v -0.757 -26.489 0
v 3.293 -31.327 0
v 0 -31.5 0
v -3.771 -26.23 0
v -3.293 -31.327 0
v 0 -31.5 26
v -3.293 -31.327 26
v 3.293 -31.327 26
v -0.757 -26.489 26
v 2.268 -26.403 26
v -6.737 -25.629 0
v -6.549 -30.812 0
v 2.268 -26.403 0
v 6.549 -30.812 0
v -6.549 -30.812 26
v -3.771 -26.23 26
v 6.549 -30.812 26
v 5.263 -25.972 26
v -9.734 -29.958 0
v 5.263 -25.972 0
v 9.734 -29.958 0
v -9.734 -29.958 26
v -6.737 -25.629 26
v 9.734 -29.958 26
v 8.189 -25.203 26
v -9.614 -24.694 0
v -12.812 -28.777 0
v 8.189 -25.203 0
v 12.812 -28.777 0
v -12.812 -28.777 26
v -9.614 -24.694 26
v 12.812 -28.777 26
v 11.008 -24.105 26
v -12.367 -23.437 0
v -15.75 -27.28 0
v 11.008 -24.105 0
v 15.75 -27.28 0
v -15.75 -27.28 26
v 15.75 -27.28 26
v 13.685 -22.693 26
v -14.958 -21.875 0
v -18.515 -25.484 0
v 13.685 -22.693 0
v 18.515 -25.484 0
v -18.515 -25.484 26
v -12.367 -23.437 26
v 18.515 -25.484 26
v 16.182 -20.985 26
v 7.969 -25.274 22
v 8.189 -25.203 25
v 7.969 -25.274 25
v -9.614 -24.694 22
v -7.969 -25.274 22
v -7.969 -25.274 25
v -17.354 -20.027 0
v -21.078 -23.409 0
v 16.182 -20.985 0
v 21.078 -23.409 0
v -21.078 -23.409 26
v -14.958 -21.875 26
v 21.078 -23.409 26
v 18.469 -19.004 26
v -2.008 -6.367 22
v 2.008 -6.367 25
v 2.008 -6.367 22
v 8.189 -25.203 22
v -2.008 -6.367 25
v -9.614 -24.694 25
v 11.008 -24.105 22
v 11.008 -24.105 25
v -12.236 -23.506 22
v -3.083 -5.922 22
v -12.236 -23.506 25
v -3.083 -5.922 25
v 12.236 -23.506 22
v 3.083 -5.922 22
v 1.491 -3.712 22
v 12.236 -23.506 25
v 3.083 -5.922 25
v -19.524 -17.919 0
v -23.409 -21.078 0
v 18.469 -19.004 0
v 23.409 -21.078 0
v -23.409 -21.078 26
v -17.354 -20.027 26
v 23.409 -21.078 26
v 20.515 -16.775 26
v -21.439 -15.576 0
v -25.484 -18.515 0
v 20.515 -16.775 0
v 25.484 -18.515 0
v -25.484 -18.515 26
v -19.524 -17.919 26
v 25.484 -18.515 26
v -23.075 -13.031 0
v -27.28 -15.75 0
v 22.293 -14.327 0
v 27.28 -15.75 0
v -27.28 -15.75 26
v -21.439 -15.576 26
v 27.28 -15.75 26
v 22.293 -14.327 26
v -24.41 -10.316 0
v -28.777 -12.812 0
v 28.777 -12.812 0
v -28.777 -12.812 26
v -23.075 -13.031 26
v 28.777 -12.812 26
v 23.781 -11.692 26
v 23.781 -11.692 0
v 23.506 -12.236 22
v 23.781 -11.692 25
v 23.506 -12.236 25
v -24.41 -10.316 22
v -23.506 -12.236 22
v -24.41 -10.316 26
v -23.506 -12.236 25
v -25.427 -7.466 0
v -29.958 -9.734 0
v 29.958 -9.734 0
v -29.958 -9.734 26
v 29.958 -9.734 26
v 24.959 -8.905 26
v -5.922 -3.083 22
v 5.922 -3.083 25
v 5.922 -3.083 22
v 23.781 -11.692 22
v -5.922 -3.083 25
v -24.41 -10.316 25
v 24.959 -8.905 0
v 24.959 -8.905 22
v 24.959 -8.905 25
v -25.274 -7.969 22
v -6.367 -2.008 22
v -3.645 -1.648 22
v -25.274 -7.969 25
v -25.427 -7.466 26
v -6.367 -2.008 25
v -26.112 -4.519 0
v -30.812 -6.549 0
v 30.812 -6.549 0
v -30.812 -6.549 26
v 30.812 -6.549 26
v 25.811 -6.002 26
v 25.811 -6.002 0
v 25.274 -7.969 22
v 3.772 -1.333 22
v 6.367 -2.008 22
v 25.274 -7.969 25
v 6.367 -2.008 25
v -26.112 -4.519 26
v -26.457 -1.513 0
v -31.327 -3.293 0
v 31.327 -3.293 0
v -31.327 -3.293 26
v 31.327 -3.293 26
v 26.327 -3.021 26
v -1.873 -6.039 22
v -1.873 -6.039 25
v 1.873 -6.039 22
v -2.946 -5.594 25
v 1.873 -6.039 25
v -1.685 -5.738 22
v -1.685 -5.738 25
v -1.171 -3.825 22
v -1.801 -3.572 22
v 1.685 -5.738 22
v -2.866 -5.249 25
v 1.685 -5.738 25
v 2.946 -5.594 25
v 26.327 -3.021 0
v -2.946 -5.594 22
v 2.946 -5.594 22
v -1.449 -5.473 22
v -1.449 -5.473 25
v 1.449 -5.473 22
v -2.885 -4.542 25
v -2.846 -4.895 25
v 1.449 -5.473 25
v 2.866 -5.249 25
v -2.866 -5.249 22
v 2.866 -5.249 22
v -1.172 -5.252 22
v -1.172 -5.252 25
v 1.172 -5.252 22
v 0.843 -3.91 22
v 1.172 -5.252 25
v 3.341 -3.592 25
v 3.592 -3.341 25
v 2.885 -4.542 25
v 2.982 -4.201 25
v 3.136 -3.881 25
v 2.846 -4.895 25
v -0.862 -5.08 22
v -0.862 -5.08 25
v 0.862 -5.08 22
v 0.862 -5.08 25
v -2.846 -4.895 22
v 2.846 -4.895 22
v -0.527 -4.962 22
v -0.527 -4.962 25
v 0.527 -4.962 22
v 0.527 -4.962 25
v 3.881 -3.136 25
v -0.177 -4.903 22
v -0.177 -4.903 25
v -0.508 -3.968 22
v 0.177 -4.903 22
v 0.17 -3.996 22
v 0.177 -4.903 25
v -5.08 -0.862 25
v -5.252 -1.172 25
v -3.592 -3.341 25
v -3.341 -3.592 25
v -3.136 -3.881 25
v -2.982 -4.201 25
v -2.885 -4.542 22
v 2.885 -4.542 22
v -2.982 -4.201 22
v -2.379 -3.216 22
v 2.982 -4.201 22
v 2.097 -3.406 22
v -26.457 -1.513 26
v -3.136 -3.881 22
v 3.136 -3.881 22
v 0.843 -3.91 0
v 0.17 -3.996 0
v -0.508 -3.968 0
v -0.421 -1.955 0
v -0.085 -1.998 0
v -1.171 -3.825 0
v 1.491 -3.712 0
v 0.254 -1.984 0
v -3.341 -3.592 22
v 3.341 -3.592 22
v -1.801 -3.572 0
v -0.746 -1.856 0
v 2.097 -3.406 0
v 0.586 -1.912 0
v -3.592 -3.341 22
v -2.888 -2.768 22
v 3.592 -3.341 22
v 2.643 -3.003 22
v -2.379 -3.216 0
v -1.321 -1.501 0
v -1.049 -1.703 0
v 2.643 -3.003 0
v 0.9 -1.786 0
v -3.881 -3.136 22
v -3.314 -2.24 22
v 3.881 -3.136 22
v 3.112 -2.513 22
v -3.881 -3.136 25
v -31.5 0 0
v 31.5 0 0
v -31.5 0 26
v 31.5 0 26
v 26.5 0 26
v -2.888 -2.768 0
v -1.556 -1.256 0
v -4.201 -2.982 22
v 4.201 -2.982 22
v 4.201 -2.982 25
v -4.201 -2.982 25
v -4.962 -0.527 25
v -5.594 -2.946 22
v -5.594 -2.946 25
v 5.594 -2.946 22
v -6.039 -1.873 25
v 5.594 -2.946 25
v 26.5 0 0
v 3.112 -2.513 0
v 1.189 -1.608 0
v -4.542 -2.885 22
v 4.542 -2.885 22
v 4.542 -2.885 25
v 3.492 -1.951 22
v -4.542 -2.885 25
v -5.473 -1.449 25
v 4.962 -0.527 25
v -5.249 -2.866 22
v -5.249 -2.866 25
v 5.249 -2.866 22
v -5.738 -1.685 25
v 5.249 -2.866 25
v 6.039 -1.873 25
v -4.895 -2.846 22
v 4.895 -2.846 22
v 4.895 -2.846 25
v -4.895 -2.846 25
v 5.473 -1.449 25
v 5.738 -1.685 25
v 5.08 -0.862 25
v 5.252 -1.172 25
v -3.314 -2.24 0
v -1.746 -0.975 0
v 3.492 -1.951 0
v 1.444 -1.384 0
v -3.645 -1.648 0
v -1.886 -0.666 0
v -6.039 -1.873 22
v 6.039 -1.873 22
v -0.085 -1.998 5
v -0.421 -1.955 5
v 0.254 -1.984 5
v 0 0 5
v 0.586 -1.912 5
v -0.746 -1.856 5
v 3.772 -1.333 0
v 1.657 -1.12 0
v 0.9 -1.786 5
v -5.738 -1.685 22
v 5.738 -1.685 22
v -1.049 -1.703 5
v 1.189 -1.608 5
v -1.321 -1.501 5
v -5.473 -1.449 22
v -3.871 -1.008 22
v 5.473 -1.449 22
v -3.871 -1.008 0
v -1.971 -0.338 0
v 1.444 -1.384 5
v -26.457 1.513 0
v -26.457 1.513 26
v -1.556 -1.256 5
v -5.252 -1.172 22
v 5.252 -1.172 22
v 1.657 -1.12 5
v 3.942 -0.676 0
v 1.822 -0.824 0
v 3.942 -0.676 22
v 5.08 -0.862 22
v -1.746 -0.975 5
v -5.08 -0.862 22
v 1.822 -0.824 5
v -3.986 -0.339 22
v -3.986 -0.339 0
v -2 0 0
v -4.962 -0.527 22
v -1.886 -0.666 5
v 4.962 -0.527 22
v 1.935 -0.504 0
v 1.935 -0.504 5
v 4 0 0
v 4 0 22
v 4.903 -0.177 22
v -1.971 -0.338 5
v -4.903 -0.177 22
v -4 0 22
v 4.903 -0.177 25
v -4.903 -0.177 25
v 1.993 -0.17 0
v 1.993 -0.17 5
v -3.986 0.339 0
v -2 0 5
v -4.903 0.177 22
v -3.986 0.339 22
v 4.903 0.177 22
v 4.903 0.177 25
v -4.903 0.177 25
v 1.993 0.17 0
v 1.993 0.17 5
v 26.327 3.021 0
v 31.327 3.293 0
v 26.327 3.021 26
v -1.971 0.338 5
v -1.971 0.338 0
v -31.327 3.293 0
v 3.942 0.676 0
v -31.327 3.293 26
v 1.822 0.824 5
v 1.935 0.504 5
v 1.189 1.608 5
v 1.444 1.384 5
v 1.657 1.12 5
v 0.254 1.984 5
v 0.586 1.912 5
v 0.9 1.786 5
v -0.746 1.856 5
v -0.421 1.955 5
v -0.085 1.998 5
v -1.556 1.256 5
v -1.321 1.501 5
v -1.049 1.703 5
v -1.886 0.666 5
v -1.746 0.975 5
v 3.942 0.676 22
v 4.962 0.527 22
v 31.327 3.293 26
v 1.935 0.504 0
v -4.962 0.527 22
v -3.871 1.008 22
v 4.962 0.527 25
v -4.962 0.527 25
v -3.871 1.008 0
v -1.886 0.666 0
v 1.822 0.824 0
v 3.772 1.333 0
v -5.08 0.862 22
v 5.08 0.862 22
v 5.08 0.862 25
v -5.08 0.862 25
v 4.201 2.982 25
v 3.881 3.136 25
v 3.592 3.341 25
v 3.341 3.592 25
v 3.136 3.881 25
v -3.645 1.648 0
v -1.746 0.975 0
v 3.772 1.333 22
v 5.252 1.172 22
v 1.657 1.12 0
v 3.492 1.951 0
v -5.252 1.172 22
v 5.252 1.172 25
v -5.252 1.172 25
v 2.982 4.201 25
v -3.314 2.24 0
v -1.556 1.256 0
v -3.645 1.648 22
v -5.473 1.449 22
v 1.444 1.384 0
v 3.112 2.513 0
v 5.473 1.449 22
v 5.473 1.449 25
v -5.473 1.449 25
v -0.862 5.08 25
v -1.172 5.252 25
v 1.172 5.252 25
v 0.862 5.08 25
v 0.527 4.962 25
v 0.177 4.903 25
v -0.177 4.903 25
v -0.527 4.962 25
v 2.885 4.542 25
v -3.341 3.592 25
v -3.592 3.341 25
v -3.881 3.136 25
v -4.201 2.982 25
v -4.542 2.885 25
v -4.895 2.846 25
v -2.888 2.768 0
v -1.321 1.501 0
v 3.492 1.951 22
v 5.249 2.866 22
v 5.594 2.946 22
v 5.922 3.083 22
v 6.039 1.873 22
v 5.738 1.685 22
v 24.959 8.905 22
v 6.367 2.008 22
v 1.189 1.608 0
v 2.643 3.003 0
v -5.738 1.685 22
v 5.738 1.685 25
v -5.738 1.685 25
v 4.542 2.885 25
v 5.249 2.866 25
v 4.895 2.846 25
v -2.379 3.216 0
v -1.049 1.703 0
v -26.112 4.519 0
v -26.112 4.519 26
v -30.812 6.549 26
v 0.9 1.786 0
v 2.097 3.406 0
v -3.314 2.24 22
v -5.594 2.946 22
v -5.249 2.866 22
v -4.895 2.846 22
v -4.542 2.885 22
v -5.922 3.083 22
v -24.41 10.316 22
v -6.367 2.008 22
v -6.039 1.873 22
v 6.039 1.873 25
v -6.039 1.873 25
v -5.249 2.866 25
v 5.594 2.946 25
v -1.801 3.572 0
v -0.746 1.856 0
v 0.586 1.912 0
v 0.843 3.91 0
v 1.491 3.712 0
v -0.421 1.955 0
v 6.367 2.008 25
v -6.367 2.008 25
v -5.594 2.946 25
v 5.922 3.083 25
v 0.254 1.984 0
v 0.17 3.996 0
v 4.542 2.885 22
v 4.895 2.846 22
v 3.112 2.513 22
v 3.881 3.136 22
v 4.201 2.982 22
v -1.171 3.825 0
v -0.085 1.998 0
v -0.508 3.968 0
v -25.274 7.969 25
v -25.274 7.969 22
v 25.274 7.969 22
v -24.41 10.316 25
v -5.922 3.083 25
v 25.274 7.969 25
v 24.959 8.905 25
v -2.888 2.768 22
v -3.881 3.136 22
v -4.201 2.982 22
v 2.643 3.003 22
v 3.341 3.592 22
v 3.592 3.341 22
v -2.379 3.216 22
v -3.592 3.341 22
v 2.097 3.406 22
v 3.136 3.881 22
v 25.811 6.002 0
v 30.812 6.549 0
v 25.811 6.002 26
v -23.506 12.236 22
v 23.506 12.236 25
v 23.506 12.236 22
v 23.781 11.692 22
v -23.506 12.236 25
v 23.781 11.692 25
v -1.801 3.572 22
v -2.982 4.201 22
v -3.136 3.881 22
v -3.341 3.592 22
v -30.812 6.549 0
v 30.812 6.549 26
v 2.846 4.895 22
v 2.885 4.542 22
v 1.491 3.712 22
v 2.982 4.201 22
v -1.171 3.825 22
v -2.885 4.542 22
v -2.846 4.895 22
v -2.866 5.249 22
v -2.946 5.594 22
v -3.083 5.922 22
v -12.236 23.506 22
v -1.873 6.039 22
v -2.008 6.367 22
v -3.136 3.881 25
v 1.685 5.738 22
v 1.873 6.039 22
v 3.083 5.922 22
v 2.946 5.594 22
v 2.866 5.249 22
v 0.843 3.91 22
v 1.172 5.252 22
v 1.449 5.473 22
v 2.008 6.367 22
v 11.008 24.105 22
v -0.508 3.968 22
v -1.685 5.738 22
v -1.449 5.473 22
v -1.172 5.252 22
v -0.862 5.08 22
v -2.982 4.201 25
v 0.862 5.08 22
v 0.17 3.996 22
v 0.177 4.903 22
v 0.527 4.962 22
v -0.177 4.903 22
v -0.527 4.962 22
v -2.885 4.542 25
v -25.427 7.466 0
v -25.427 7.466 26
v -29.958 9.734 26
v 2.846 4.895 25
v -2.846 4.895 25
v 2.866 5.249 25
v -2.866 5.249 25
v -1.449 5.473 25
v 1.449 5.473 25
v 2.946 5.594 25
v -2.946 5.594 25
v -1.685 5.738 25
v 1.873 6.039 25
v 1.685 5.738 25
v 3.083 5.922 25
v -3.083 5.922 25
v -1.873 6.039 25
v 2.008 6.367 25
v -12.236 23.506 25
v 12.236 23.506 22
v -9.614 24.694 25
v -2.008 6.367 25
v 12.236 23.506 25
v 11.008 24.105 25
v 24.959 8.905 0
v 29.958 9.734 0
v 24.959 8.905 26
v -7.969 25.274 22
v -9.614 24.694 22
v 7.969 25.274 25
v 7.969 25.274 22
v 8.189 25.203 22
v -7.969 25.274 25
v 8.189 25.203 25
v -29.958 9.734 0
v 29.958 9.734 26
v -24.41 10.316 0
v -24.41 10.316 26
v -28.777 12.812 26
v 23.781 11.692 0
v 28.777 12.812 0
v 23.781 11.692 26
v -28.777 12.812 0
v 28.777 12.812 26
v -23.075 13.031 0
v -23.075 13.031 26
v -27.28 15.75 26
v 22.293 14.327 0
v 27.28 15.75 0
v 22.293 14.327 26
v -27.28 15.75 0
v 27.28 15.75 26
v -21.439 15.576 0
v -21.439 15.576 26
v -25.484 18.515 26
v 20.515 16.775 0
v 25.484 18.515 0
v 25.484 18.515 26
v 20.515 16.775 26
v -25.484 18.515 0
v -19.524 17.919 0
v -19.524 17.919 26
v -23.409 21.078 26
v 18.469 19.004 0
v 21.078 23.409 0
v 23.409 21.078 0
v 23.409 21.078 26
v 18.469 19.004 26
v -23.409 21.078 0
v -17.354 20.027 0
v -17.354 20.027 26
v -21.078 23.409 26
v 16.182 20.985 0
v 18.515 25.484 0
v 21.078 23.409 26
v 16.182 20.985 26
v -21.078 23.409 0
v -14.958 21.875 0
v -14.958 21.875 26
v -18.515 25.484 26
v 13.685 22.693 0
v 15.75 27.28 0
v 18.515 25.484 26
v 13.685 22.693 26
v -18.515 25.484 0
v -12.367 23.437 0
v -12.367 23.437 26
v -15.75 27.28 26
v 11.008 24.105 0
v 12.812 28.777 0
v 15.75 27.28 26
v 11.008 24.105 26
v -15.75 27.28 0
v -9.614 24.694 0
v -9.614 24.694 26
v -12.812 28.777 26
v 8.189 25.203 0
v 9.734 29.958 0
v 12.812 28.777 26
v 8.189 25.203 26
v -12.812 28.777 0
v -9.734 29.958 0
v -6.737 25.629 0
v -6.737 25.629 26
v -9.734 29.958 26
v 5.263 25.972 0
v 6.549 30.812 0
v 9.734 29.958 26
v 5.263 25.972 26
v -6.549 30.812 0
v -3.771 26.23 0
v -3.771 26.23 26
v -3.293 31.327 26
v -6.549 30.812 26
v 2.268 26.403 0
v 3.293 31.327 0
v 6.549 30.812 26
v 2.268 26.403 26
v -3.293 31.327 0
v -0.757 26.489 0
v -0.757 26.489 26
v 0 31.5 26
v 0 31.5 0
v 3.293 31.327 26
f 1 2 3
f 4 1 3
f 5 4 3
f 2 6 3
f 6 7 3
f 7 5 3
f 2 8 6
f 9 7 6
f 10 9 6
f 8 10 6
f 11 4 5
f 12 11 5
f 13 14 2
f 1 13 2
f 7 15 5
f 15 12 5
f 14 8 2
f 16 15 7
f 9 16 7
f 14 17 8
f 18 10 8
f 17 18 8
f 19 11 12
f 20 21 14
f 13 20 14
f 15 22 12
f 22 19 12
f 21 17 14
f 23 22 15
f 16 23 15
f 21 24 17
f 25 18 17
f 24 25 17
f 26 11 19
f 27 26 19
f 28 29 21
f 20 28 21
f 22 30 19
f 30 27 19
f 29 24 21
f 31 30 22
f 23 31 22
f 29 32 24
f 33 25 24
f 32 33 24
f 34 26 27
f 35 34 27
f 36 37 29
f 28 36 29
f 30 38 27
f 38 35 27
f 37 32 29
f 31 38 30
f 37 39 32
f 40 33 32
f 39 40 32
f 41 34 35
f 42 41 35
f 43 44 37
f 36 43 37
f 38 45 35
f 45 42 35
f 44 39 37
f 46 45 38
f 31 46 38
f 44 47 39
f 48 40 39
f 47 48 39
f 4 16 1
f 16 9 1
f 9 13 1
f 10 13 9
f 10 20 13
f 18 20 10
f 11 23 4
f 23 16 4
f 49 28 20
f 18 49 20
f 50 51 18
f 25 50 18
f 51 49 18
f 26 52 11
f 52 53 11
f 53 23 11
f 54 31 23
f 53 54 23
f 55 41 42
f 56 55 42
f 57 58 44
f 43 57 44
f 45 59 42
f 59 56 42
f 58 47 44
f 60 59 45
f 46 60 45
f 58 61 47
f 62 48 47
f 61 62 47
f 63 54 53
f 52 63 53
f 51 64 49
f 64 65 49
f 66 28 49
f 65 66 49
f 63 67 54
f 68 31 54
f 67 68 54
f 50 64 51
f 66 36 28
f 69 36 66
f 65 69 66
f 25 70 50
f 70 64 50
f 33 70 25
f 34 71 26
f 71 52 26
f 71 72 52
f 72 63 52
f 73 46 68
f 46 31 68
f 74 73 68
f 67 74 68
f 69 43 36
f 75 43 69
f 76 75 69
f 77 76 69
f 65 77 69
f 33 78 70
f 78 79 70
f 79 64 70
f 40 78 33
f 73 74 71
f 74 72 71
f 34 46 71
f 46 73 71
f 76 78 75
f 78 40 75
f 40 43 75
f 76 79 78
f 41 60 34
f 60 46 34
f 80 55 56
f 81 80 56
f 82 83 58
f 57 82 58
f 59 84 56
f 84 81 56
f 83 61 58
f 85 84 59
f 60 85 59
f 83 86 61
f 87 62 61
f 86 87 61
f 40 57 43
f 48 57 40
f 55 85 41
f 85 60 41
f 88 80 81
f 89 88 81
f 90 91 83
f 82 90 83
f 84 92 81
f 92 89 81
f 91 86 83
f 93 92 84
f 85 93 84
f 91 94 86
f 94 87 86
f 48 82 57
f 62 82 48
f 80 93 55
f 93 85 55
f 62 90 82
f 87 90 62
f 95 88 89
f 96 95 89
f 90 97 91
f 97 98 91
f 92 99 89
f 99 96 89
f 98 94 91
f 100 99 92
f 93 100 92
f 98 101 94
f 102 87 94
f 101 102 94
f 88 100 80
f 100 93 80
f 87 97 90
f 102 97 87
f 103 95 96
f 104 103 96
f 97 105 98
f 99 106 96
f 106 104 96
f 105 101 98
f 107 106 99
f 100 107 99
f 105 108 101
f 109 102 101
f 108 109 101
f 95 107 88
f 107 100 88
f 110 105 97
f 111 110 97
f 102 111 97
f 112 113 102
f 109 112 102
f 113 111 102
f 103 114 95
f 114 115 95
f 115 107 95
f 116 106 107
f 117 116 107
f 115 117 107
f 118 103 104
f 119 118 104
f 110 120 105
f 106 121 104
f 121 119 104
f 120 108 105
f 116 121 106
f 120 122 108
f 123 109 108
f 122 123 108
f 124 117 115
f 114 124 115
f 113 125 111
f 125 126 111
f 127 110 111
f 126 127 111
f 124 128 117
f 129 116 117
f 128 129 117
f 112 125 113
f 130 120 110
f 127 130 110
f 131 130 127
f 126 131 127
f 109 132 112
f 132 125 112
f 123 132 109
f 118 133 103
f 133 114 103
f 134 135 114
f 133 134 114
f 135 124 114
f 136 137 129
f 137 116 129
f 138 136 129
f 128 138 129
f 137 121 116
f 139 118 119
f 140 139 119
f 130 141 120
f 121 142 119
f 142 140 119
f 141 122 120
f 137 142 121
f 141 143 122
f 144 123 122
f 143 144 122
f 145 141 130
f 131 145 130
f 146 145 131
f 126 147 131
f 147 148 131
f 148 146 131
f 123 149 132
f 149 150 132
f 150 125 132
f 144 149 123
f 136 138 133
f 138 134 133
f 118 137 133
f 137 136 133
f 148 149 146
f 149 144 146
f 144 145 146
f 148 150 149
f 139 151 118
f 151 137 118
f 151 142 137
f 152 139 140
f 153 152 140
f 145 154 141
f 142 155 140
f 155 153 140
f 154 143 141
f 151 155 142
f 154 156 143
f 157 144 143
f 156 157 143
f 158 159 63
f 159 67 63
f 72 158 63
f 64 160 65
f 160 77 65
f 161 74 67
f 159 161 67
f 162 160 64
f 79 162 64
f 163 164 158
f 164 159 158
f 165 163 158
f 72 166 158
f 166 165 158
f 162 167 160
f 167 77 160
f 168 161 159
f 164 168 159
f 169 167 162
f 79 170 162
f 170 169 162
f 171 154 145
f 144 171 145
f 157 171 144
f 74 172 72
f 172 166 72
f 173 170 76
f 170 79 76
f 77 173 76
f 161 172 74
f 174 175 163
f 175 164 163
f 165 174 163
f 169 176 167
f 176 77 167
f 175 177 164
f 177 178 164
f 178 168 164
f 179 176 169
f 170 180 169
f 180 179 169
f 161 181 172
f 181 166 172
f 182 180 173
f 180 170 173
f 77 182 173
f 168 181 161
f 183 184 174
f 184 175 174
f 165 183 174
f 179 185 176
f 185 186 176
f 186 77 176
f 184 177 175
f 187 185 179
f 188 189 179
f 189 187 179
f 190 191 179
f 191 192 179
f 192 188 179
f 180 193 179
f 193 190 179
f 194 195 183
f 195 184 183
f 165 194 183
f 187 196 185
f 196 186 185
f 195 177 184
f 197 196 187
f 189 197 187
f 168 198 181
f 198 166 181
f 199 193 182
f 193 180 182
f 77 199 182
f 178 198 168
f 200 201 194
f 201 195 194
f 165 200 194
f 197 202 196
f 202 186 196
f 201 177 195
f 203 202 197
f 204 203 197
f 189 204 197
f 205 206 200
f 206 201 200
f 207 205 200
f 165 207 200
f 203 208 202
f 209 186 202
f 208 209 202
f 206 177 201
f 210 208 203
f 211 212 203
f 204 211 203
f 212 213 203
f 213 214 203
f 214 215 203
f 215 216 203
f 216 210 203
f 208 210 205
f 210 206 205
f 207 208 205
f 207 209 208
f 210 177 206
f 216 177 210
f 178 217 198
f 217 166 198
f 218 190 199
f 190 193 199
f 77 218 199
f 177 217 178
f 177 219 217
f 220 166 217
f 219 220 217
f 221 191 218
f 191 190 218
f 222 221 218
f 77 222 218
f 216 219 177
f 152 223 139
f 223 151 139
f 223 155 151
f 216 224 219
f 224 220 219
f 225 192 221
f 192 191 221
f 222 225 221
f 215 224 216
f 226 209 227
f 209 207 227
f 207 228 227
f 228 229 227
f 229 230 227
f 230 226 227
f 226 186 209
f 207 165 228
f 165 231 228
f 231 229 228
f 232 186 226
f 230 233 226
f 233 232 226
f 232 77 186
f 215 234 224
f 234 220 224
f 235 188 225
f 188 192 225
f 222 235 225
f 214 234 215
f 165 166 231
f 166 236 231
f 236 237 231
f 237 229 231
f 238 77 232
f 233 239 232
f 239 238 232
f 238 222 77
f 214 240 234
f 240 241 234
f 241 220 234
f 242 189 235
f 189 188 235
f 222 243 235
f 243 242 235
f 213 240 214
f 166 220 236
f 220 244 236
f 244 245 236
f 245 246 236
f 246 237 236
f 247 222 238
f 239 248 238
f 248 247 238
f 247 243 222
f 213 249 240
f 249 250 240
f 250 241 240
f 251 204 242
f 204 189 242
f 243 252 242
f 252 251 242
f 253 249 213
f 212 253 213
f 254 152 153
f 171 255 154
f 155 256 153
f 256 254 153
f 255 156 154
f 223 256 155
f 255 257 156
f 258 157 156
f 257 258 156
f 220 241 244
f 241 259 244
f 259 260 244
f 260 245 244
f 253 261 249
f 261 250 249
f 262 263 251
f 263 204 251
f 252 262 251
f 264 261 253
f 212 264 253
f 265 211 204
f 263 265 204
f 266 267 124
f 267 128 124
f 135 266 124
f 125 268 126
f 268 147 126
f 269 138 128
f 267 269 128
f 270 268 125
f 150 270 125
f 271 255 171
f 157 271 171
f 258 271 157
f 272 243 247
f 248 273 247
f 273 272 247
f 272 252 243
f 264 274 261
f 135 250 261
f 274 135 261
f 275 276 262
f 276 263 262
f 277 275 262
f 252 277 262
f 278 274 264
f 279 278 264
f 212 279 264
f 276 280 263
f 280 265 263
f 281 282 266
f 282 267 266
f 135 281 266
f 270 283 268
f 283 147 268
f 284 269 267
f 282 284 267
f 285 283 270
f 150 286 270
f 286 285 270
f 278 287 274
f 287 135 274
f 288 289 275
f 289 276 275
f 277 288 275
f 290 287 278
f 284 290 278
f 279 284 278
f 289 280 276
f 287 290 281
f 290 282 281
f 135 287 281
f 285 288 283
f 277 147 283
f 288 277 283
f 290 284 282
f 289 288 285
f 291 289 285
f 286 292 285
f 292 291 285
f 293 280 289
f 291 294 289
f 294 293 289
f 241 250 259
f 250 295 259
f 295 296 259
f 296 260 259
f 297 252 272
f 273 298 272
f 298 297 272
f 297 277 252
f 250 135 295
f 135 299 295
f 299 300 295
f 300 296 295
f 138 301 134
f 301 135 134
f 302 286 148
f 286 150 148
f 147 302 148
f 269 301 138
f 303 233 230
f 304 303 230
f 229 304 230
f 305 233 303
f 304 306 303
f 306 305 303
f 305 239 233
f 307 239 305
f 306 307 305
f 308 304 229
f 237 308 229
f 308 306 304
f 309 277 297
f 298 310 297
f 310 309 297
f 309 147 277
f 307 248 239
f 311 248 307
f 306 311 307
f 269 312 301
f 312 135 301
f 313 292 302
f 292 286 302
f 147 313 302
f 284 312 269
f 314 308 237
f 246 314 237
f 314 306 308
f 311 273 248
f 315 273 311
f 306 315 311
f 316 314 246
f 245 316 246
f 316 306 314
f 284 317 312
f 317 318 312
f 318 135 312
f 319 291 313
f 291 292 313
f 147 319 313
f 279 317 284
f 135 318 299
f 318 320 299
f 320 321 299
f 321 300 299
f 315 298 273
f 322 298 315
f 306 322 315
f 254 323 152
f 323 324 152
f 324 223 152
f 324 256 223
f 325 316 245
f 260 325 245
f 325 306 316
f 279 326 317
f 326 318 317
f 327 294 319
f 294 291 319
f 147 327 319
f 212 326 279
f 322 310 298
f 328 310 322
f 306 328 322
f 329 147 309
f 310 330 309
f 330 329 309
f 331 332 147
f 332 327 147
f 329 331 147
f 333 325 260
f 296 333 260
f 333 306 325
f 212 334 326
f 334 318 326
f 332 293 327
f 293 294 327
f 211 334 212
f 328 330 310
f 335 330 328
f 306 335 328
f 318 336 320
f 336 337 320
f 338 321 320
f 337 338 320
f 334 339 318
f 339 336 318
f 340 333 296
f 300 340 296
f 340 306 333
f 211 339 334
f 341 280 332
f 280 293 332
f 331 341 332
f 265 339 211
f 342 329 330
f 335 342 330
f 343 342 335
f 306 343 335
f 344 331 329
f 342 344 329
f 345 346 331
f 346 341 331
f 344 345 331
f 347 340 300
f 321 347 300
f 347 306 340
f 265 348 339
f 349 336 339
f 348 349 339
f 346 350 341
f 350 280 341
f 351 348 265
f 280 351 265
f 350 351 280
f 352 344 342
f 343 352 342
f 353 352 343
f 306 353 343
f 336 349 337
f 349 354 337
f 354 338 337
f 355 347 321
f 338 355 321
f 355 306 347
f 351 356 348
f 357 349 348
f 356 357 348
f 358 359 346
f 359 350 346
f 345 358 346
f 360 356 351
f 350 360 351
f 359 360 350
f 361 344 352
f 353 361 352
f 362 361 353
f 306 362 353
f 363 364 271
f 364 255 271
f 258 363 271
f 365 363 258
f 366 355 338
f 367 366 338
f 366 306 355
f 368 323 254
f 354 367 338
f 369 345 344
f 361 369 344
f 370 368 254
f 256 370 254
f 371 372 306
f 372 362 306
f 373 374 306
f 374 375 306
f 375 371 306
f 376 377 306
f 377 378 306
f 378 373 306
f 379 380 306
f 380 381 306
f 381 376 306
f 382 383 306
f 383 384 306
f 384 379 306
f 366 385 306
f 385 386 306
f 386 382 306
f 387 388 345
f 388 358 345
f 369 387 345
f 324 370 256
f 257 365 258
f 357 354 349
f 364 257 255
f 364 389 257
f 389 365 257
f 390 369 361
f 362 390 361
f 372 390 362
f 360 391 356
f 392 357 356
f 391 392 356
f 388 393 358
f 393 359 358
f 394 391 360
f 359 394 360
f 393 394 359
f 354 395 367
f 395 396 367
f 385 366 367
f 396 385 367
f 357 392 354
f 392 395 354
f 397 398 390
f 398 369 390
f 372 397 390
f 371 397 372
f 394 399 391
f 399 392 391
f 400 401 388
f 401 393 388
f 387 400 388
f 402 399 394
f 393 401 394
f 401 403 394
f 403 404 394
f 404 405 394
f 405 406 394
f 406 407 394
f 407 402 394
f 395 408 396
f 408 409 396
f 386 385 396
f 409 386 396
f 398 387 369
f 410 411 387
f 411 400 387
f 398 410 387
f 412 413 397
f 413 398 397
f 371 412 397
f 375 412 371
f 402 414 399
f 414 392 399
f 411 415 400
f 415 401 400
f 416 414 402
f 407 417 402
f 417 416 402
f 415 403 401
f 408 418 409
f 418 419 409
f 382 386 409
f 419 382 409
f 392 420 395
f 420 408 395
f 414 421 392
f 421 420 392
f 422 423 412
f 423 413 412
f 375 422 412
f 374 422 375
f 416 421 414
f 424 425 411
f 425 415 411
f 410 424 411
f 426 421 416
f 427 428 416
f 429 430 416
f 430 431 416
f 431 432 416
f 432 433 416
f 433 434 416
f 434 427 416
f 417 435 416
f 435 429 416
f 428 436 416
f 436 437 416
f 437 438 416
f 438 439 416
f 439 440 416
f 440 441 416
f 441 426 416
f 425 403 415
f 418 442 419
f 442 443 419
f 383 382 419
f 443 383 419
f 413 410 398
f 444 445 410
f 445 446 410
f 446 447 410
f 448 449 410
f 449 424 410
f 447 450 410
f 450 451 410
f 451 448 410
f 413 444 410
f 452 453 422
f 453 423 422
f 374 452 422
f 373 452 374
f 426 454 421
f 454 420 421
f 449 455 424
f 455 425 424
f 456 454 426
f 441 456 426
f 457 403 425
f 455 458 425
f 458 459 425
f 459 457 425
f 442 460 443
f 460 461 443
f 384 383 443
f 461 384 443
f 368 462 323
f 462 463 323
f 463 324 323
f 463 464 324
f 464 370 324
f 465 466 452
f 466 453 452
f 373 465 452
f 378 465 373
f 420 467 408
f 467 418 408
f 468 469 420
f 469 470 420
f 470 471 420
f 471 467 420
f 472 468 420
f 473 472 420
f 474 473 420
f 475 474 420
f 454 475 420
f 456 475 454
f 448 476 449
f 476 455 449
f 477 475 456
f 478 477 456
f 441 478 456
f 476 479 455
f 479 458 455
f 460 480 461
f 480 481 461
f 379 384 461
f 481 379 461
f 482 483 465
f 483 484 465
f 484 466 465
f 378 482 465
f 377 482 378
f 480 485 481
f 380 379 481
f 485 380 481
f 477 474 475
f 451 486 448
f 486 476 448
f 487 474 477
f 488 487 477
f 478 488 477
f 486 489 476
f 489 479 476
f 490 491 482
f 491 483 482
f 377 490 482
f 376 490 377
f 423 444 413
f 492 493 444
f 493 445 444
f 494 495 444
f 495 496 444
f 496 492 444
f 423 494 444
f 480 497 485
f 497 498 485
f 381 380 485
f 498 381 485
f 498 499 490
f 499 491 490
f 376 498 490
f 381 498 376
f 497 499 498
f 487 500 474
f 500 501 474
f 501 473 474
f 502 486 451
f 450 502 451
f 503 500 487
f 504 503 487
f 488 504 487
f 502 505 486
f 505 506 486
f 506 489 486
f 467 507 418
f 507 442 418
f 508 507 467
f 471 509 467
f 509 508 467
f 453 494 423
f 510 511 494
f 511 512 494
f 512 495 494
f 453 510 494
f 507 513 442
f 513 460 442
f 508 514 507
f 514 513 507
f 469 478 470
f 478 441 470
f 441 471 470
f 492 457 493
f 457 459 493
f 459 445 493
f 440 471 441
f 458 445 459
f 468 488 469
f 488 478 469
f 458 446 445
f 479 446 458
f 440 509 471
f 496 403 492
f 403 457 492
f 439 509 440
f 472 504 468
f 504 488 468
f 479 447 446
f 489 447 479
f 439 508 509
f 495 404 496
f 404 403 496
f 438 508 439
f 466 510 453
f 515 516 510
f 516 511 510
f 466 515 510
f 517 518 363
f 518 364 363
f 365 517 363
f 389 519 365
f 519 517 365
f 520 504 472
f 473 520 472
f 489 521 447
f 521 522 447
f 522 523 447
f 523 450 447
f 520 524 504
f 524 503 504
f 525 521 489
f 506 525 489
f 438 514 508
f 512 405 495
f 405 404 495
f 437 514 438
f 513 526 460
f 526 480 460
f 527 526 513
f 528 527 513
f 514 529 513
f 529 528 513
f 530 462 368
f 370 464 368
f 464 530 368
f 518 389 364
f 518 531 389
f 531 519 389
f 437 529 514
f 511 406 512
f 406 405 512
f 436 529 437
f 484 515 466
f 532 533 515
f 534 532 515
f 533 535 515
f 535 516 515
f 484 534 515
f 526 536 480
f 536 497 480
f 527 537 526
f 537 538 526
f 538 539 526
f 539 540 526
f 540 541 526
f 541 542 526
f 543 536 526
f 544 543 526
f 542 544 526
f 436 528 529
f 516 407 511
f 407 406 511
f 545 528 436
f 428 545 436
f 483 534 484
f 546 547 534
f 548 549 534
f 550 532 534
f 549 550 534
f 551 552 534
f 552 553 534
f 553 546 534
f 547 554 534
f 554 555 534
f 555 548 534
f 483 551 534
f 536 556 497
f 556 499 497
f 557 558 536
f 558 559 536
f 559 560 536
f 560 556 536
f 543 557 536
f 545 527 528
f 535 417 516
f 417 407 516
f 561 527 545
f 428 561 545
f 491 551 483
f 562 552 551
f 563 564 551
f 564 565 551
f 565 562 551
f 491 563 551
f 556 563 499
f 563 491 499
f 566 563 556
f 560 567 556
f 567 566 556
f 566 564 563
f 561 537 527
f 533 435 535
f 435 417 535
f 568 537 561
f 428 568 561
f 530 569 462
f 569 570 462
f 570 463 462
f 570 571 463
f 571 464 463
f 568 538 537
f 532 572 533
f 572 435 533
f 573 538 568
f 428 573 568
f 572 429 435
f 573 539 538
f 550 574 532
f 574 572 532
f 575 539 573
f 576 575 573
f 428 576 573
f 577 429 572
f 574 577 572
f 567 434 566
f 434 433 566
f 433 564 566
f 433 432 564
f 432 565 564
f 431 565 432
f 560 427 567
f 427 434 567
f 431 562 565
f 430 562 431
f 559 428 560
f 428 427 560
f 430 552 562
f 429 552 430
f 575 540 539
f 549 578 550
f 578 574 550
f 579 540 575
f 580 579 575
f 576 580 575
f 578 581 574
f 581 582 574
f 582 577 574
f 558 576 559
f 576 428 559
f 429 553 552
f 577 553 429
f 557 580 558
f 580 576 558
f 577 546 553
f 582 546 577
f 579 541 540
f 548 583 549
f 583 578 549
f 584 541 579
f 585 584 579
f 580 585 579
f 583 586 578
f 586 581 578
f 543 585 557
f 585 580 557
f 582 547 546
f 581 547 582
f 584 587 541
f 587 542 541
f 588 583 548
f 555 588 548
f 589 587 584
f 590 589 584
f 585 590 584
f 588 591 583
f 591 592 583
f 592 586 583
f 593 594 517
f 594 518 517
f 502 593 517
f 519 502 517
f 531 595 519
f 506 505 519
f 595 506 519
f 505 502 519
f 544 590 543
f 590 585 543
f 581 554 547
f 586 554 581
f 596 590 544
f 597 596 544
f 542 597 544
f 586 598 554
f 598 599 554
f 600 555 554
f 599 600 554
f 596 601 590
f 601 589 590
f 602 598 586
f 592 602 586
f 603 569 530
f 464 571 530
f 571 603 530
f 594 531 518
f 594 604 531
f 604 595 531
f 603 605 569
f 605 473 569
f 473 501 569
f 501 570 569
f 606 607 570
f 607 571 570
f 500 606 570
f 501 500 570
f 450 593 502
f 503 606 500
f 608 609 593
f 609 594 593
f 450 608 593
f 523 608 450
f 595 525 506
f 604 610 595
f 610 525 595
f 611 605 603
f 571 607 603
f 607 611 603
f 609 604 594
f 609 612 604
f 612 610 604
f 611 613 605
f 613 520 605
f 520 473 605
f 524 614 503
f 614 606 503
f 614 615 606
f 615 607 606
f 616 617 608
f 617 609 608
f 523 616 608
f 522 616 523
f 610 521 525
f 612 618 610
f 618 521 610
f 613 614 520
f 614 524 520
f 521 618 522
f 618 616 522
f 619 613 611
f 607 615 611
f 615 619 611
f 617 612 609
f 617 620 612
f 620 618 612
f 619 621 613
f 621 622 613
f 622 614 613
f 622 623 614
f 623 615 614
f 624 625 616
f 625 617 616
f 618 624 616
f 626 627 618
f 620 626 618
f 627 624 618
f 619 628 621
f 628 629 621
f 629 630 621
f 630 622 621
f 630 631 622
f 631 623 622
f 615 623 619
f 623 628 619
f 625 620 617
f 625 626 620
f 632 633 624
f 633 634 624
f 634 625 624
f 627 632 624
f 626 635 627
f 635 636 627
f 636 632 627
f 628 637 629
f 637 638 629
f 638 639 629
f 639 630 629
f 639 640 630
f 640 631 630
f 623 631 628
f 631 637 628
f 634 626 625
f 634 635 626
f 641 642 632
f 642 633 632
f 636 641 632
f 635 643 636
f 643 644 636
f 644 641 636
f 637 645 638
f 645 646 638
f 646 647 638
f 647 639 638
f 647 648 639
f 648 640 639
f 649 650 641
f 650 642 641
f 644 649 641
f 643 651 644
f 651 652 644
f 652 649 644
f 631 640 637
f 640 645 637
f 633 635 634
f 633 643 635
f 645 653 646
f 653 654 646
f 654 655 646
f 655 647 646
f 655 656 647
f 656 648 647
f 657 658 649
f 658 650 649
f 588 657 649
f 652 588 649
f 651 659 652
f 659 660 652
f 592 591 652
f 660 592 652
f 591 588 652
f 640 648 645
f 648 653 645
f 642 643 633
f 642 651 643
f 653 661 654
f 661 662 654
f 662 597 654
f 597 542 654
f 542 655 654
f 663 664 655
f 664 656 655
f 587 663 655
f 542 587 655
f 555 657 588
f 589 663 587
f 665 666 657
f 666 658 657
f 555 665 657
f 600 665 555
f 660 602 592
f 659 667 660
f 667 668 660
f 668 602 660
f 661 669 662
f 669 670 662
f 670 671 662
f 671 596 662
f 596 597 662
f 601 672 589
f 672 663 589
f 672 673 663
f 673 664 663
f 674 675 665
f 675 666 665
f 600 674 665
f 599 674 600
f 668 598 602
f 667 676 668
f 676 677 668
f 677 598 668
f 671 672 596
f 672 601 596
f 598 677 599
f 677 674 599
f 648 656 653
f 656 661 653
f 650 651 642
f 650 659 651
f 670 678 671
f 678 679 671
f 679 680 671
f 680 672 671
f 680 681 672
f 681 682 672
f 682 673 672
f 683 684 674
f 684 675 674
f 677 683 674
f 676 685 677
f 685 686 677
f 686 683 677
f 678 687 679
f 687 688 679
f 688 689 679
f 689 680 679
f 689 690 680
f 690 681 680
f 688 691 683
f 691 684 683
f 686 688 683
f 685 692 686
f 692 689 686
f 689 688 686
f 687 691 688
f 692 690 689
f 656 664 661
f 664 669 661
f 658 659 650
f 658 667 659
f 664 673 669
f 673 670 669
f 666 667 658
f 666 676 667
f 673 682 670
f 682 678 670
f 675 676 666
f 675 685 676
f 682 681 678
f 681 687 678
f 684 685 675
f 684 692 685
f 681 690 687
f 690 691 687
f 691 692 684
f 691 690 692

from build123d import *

# Parameters (mm, degrees)
ESQUISSE1_R             = 31.5
BOSS_EXTRU_1_DEPTH      = 26
ESQUISSE2_R             = 26.5
ENL_V_MAT_EXTRU_1_DEPTH = 1
ENL_V_MAT_EXTRU_2_DEPTH = 52.083265362
ESQUISSE4_R             = 26.5
ENL_V_MAT_EXTRU_3_DEPTH = 21
ESQUISSE5_R             = 4
BOSS_EXTRU_2_DEPTH      = 22
ESQUISSE6_R             = 2
ENL_V_MAT_EXTRU_4_DEPTH = 5


with BuildPart() as part:
    # Esquisse1 → Boss.-Extru.1 (new body)
    with BuildSketch(Plane.XY):
        with Locations(Location((0, 0, 0), (0, 0, 180))):
            Circle(ESQUISSE1_R)
    extrude(amount=BOSS_EXTRU_1_DEPTH)

    # Esquisse2 → Enlèv. mat.-Extru.1 (cut)
    with BuildSketch(Plane.XY.offset(26)):
        Circle(ESQUISSE2_R)
    enl_v_mat_extru_1 = extrude(amount=-ENL_V_MAT_EXTRU_1_DEPTH, mode=Mode.SUBTRACT)

    # Symétrie1: Enlèv. mat.-Extru.1 across plane
    add(enl_v_mat_extru_1.mirror(Plane.XY.offset(13)), mode=Mode.SUBTRACT)

    # Esquisse3 → Enlèv. mat.-Extru.2 (cut, through all)
    with BuildSketch(Plane.XY.offset(25)):
        with BuildLine():
            ThreePointArc((7.968703687, 25.273499195), (0, 26.5), (-7.968703687, 25.273499195))
            Line((-7.968703687, 25.273499195), (-2.007517527, 6.367032155))
            ThreePointArc((-2.007517527, 6.367032155), (0, 4.895059403), (2.007517527, 6.367032155))
            Line((2.007517527, 6.367032155), (7.968703687, 25.273499195))
        make_face()
        with BuildLine():
            Line((-3.082642356, 5.92170087), (-12.236338251, 23.505787079))
            ThreePointArc((-12.236338251, 23.505787079), (-18.738329701, 18.738329701), (-23.505787079, 12.236338251))
            Line((-23.505787079, 12.236338251), (-5.92170087, 3.082642356))
            ThreePointArc((-5.92170087, 3.082642356), (-3.461329699, 3.461329699), (-3.082642356, 5.92170087))
        make_face()
        with BuildLine():
            Line((-6.367032155, 2.007517527), (-25.273499195, 7.968703687))
            ThreePointArc((-25.273499195, 7.968703687), (-26.5, 0), (-25.273499195, -7.968703687))
            Line((-25.273499195, -7.968703687), (-6.367032155, -2.007517527))
            ThreePointArc((-6.367032155, -2.007517527), (-4.895059403, 0), (-6.367032155, 2.007517527))
        make_face()
        with BuildLine():
            Line((-5.92170087, -3.082642356), (-23.505787079, -12.236338251))
            ThreePointArc((-23.505787079, -12.236338251), (-18.738329701, -18.738329701), (-12.236338251, -23.505787079))
            Line((-12.236338251, -23.505787079), (-3.082642356, -5.92170087))
            ThreePointArc((-3.082642356, -5.92170087), (-3.461329699, -3.461329699), (-5.92170087, -3.082642356))
        make_face()
        with BuildLine():
            Line((-2.007517527, -6.367032155), (-7.968703687, -25.273499195))
            ThreePointArc((-7.968703687, -25.273499195), (0, -26.5), (7.968703687, -25.273499195))
            Line((7.968703687, -25.273499195), (2.007517527, -6.367032155))
            ThreePointArc((2.007517527, -6.367032155), (0, -4.895059403), (-2.007517527, -6.367032155))
        make_face()
        with BuildLine():
            ThreePointArc((12.236338251, -23.505787079), (18.738329701, -18.738329701), (23.505787079, -12.236338251))
            Line((23.505787079, -12.236338251), (5.92170087, -3.082642356))
            ThreePointArc((5.92170087, -3.082642356), (3.461329699, -3.461329699), (3.082642356, -5.92170087))
            Line((3.082642356, -5.92170087), (12.236338251, -23.505787079))
        make_face()
        with BuildLine():
            ThreePointArc((26.5, 0), (26.191580027, 4.031269734), (25.273499195, 7.968703687))
            Line((25.273499195, 7.968703687), (6.367032155, 2.007517527))
            ThreePointArc((6.367032155, 2.007517527), (4.895059403, 0), (6.367032155, -2.007517527))
            Line((6.367032155, -2.007517527), (25.273499195, -7.968703687))
            ThreePointArc((25.273499195, -7.968703687), (26.191580027, -4.031269734), (26.5, 0))
        make_face()
        with BuildLine():
            ThreePointArc((23.505787079, 12.236338251), (18.738329701, 18.738329701), (12.236338251, 23.505787079))
            Line((12.236338251, 23.505787079), (3.082642356, 5.92170087))
            ThreePointArc((3.082642356, 5.92170087), (3.461329699, 3.461329699), (5.92170087, 3.082642356))
            Line((5.92170087, 3.082642356), (23.505787079, 12.236338251))
        make_face()
    extrude(amount=-ENL_V_MAT_EXTRU_2_DEPTH, mode=Mode.SUBTRACT)

    # Esquisse4 → Enlèv. mat.-Extru.3 (cut)
    with BuildSketch(Plane(origin=(0, 0, 1), x_dir=(-1, 0, 0), z_dir=(0, 0, -1))):
        with Locations(Location((0, 0, 0), (0, 0, 180))):
            Circle(ESQUISSE4_R)
    extrude(amount=-ENL_V_MAT_EXTRU_3_DEPTH, mode=Mode.SUBTRACT)

    # Esquisse5 → Boss.-Extru.2 (add)
    with BuildSketch(Plane(origin=(0, 0, 22), x_dir=(-1, 0, 0), z_dir=(0, 0, -1))):
        with Locations(Location((0, 0, 0), (0, 0, 180))):
            Circle(ESQUISSE5_R)
    extrude(amount=BOSS_EXTRU_2_DEPTH)

    # Esquisse6 → Enlèv. mat.-Extru.4 (cut)
    with BuildSketch(Plane(origin=(0, 0, 0), x_dir=(-1, 0, 0), z_dir=(0, 0, -1))):
        Circle(ESQUISSE6_R)
    extrude(amount=-ENL_V_MAT_EXTRU_4_DEPTH, mode=Mode.SUBTRACT)


solid = part.part
